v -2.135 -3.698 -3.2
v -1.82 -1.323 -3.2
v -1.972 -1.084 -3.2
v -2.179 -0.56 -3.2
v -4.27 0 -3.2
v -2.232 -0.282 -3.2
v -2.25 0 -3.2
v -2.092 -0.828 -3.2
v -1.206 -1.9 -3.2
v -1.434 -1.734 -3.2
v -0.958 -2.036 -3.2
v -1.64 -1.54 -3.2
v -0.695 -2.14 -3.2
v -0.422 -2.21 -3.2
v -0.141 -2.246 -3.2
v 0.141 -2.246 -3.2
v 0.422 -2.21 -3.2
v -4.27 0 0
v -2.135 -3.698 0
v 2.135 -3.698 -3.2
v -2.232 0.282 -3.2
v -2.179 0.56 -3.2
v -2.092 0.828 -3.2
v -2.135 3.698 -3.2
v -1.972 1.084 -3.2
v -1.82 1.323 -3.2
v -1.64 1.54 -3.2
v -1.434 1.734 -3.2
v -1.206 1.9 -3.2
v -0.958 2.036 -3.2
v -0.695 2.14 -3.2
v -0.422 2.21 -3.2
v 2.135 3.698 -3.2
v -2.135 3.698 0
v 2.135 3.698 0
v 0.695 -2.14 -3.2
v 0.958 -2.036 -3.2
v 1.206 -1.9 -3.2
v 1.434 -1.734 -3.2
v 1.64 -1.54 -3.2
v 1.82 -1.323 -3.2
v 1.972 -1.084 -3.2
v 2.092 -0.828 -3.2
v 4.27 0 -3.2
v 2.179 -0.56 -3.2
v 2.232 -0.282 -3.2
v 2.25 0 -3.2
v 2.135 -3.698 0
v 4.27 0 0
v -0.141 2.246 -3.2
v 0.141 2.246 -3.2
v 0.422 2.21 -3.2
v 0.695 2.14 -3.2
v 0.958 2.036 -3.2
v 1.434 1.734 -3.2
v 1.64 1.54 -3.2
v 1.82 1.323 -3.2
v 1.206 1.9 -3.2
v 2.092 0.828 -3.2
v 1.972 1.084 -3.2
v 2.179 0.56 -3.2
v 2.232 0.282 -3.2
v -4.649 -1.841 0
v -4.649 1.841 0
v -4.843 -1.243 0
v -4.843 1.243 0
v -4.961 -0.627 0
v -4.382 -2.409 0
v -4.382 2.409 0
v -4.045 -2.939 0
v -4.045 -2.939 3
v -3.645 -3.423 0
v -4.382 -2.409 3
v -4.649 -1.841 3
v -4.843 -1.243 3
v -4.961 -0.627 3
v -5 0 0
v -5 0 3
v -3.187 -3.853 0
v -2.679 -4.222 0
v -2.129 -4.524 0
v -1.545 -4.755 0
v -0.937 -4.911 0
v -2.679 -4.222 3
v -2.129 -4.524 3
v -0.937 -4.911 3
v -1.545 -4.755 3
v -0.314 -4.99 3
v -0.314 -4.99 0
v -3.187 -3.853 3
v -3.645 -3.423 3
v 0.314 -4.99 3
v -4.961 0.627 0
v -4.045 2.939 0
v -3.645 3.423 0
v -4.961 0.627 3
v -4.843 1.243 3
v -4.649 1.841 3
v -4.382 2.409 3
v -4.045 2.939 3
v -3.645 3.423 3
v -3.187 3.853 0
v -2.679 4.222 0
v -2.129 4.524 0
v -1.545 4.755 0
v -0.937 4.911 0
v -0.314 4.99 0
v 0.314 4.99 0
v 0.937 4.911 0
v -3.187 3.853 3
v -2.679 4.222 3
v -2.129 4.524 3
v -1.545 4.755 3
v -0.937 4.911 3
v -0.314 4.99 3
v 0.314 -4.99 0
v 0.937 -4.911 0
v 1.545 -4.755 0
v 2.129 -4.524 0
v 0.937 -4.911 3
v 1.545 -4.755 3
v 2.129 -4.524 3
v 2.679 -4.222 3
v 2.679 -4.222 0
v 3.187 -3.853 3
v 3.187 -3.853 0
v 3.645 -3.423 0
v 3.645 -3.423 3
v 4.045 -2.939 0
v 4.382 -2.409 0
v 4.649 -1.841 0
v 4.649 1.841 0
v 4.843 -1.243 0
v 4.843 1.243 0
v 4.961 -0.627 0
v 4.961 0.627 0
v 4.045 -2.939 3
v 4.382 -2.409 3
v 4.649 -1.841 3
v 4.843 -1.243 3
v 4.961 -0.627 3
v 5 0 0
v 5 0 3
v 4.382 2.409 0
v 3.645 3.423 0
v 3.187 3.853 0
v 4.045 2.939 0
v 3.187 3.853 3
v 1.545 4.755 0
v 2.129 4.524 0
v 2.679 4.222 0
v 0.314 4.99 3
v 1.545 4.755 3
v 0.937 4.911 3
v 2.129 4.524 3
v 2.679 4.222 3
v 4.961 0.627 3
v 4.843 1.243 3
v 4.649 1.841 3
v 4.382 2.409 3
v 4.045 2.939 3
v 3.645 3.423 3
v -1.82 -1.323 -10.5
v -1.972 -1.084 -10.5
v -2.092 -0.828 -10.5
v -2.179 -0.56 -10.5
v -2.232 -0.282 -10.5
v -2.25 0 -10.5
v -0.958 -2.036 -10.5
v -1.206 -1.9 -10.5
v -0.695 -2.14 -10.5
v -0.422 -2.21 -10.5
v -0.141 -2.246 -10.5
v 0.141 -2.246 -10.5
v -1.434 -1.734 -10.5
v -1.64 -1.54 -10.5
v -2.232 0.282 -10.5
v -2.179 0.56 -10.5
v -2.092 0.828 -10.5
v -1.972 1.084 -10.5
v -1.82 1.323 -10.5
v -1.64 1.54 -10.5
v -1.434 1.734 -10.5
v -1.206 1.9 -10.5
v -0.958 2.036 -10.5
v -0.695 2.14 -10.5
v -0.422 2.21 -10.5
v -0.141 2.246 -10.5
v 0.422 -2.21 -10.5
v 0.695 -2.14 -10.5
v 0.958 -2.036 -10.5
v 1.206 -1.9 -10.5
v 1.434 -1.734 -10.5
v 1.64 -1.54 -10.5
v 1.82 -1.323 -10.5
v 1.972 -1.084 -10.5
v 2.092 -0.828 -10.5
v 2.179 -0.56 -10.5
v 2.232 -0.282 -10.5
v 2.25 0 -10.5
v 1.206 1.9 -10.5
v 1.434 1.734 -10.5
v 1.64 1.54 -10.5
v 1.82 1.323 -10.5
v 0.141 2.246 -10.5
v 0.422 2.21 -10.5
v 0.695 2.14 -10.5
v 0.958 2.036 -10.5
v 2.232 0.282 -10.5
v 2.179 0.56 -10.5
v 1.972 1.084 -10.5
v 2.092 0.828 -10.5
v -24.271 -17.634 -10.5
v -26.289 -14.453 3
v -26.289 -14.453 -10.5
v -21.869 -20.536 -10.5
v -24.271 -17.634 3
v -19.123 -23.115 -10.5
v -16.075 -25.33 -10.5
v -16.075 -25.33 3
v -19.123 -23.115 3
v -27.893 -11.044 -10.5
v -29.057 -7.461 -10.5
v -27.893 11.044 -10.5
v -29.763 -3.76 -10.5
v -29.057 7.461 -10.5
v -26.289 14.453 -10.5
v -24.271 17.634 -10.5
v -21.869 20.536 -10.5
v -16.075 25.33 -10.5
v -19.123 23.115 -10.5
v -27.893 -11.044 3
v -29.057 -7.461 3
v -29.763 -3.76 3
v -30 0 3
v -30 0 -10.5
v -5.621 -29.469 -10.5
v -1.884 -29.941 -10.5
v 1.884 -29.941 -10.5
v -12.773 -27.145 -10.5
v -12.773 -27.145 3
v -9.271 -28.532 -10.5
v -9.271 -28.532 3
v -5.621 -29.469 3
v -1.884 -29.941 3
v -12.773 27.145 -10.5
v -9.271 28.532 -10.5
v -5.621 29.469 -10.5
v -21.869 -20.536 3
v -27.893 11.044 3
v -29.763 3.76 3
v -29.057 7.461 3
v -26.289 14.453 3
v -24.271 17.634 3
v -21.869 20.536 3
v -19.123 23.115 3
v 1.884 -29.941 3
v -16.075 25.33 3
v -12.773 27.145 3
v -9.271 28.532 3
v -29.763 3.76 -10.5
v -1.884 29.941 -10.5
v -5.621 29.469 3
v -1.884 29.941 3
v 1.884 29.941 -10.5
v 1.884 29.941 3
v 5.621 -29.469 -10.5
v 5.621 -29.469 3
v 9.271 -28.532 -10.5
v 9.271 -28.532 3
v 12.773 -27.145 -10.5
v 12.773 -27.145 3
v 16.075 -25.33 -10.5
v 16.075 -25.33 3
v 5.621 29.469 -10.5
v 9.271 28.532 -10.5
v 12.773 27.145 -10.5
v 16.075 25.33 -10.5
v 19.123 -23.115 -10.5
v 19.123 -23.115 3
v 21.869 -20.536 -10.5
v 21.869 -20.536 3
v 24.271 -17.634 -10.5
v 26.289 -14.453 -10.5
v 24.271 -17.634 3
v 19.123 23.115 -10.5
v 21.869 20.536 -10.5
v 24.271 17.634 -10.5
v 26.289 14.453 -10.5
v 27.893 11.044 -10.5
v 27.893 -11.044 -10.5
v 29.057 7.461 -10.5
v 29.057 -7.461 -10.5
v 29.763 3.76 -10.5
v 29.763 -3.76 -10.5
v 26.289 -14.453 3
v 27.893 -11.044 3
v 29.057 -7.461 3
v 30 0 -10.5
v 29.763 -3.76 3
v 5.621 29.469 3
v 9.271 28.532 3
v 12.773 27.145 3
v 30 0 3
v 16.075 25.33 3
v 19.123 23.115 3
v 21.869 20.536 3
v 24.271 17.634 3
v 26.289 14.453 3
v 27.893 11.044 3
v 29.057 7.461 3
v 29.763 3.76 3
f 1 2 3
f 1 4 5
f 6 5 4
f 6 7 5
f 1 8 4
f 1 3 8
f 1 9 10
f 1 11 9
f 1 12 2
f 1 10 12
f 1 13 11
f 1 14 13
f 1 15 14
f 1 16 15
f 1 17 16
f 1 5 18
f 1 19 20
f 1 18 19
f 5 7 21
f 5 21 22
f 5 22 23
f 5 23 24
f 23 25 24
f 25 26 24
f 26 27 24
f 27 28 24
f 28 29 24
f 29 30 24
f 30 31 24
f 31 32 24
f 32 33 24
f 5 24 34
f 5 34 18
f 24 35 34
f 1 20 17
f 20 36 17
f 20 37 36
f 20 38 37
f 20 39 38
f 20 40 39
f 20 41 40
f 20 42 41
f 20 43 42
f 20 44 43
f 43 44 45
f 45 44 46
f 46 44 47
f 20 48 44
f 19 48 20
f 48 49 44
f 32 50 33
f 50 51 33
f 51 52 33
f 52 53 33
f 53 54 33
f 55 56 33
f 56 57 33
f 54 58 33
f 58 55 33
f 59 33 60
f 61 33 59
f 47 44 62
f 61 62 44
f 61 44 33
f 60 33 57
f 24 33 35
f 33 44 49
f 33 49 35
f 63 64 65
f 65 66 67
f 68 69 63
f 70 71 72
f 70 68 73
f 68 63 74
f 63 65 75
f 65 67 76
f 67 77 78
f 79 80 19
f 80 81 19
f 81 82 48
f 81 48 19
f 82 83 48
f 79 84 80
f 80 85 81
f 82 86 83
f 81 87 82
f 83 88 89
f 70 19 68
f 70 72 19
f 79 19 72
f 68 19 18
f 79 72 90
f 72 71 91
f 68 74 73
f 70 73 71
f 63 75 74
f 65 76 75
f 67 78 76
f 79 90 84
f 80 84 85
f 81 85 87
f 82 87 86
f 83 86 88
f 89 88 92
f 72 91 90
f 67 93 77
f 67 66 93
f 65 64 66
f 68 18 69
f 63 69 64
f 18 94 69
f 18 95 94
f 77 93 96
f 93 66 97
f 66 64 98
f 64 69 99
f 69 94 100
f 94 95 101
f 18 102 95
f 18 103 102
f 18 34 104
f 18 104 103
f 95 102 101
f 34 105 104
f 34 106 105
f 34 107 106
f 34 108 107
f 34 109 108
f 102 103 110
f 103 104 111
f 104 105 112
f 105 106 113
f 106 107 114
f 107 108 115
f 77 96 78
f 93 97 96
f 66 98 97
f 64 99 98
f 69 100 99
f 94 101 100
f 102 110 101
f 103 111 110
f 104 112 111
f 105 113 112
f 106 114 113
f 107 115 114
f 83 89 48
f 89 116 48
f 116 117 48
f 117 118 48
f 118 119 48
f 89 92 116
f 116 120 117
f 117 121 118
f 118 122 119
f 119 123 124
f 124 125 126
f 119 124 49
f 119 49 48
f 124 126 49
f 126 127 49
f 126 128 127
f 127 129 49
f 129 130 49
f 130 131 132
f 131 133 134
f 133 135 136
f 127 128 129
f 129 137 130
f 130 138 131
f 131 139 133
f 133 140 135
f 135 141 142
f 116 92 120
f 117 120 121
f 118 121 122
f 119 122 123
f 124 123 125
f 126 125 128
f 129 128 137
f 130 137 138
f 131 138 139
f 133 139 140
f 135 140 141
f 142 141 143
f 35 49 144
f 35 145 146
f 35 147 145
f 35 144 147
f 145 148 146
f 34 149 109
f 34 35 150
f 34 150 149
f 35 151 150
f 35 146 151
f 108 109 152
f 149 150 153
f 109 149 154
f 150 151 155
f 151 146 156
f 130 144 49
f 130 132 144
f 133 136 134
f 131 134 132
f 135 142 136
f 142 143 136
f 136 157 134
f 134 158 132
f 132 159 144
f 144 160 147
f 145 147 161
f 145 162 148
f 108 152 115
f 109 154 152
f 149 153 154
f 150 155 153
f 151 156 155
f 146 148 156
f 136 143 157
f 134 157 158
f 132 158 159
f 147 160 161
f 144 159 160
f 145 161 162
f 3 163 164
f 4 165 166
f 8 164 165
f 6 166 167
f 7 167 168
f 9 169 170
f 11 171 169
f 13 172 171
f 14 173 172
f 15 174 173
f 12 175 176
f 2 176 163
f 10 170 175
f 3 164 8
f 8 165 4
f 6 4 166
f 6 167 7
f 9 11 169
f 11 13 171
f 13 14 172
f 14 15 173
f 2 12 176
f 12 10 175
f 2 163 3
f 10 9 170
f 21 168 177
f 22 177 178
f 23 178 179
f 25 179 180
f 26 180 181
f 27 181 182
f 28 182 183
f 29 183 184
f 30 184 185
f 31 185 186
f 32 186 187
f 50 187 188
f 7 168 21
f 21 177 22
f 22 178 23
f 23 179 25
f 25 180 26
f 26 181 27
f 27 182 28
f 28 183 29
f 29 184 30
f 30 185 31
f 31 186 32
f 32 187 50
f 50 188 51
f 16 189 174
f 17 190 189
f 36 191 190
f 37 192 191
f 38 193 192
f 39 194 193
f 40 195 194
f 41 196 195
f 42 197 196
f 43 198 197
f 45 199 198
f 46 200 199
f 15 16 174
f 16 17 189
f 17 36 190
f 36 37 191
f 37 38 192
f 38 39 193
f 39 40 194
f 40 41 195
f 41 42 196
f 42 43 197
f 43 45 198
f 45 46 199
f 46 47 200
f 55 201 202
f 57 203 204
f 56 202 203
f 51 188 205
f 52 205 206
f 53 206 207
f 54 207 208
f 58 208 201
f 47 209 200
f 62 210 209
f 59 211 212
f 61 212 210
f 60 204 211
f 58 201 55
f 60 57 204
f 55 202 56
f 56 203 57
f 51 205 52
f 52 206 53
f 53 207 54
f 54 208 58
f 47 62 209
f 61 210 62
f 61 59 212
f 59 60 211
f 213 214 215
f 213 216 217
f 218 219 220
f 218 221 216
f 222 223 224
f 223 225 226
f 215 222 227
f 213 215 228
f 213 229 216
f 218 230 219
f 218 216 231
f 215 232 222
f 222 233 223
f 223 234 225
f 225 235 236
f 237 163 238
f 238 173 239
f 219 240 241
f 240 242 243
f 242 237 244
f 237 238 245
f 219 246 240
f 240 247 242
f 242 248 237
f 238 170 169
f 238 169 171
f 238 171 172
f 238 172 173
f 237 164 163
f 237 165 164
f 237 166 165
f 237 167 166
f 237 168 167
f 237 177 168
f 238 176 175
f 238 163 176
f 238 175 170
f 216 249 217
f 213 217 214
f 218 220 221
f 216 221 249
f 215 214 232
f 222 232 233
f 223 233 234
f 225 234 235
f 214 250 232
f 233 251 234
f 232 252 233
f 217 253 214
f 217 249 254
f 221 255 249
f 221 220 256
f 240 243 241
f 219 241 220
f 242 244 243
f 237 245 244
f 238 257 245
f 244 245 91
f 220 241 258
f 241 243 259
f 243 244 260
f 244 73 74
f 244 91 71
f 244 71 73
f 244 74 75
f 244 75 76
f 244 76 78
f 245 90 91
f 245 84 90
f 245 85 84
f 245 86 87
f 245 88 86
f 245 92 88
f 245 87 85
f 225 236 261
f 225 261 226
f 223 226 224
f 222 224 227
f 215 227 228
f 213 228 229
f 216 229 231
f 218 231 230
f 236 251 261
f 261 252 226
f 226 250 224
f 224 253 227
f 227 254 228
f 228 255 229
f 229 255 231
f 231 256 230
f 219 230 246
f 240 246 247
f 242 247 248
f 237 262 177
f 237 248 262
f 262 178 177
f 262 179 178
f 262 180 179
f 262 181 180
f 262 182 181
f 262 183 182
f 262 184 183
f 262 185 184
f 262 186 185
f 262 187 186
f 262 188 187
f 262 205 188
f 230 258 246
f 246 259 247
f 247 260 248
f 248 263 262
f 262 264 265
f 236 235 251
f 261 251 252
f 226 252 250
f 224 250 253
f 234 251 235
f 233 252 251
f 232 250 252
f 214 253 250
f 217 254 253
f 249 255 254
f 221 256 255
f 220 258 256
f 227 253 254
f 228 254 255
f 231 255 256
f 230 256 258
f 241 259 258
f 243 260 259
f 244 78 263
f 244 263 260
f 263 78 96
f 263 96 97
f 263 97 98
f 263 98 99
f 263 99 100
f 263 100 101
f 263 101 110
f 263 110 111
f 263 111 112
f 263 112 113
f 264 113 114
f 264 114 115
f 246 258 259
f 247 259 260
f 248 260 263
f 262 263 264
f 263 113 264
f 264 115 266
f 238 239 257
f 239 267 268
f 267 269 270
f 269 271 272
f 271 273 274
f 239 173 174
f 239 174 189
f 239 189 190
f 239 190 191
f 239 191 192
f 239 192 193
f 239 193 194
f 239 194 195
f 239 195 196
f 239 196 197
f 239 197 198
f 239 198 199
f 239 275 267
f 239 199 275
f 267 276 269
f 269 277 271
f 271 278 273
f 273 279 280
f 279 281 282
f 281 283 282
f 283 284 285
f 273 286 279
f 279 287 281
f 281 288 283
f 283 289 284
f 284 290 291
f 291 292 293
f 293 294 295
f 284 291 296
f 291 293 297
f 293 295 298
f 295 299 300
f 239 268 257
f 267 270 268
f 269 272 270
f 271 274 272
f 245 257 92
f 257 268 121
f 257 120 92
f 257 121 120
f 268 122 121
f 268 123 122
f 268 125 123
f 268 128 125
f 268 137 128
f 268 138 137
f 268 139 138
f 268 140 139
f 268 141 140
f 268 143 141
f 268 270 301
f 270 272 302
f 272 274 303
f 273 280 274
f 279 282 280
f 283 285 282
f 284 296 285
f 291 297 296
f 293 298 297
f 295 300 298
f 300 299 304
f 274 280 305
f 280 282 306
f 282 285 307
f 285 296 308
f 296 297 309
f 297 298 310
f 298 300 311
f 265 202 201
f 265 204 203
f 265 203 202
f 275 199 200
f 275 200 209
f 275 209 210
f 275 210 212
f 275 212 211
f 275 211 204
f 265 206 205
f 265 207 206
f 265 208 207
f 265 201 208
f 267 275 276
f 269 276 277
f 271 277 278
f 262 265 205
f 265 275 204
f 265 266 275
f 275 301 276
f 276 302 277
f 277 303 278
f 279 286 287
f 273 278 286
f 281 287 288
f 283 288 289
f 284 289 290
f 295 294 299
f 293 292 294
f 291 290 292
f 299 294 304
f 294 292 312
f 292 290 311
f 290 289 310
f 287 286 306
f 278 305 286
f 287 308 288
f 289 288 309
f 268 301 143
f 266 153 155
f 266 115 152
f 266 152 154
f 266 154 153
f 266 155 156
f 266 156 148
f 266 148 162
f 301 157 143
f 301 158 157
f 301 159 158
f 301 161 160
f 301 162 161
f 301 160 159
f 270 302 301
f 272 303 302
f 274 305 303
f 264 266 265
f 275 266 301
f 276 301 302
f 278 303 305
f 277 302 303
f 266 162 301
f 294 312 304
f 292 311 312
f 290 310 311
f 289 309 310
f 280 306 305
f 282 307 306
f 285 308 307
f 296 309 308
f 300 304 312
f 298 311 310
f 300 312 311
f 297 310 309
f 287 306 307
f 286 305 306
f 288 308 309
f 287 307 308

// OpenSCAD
$fn = 50;

difference() {
	union() {
		translate(v = [0, 0, -10.5]) {
			cylinder(h = 13.5, r = 30.0);
		}
	}
	union() {
		translate(v = [0, 0, 0]) {
			rotate(a = [0, 0, 0]) {
				difference() {
					union() {
						translate(v = [0, 0, -3.2]) {
							linear_extrude(height = 3.2) {
								polygon(points = [[4.2698, 0.0], [2.1349000000000005, 3.697755269078796], [-2.134899999999999, 3.6977552690787965], [-4.2698, 5.228996902999369e-16], [-2.134900000000002, -3.6977552690787956], [2.1348999999999974, -3.697755269078798]]);
							}
						}
					}
					union();
				}
			}
		}
		#cylinder(h = 3, r = 5.0);
		#translate(v = [0, 0, -100.0]) {
			cylinder(h = 200, r = 2.25);
		}
	}
}
